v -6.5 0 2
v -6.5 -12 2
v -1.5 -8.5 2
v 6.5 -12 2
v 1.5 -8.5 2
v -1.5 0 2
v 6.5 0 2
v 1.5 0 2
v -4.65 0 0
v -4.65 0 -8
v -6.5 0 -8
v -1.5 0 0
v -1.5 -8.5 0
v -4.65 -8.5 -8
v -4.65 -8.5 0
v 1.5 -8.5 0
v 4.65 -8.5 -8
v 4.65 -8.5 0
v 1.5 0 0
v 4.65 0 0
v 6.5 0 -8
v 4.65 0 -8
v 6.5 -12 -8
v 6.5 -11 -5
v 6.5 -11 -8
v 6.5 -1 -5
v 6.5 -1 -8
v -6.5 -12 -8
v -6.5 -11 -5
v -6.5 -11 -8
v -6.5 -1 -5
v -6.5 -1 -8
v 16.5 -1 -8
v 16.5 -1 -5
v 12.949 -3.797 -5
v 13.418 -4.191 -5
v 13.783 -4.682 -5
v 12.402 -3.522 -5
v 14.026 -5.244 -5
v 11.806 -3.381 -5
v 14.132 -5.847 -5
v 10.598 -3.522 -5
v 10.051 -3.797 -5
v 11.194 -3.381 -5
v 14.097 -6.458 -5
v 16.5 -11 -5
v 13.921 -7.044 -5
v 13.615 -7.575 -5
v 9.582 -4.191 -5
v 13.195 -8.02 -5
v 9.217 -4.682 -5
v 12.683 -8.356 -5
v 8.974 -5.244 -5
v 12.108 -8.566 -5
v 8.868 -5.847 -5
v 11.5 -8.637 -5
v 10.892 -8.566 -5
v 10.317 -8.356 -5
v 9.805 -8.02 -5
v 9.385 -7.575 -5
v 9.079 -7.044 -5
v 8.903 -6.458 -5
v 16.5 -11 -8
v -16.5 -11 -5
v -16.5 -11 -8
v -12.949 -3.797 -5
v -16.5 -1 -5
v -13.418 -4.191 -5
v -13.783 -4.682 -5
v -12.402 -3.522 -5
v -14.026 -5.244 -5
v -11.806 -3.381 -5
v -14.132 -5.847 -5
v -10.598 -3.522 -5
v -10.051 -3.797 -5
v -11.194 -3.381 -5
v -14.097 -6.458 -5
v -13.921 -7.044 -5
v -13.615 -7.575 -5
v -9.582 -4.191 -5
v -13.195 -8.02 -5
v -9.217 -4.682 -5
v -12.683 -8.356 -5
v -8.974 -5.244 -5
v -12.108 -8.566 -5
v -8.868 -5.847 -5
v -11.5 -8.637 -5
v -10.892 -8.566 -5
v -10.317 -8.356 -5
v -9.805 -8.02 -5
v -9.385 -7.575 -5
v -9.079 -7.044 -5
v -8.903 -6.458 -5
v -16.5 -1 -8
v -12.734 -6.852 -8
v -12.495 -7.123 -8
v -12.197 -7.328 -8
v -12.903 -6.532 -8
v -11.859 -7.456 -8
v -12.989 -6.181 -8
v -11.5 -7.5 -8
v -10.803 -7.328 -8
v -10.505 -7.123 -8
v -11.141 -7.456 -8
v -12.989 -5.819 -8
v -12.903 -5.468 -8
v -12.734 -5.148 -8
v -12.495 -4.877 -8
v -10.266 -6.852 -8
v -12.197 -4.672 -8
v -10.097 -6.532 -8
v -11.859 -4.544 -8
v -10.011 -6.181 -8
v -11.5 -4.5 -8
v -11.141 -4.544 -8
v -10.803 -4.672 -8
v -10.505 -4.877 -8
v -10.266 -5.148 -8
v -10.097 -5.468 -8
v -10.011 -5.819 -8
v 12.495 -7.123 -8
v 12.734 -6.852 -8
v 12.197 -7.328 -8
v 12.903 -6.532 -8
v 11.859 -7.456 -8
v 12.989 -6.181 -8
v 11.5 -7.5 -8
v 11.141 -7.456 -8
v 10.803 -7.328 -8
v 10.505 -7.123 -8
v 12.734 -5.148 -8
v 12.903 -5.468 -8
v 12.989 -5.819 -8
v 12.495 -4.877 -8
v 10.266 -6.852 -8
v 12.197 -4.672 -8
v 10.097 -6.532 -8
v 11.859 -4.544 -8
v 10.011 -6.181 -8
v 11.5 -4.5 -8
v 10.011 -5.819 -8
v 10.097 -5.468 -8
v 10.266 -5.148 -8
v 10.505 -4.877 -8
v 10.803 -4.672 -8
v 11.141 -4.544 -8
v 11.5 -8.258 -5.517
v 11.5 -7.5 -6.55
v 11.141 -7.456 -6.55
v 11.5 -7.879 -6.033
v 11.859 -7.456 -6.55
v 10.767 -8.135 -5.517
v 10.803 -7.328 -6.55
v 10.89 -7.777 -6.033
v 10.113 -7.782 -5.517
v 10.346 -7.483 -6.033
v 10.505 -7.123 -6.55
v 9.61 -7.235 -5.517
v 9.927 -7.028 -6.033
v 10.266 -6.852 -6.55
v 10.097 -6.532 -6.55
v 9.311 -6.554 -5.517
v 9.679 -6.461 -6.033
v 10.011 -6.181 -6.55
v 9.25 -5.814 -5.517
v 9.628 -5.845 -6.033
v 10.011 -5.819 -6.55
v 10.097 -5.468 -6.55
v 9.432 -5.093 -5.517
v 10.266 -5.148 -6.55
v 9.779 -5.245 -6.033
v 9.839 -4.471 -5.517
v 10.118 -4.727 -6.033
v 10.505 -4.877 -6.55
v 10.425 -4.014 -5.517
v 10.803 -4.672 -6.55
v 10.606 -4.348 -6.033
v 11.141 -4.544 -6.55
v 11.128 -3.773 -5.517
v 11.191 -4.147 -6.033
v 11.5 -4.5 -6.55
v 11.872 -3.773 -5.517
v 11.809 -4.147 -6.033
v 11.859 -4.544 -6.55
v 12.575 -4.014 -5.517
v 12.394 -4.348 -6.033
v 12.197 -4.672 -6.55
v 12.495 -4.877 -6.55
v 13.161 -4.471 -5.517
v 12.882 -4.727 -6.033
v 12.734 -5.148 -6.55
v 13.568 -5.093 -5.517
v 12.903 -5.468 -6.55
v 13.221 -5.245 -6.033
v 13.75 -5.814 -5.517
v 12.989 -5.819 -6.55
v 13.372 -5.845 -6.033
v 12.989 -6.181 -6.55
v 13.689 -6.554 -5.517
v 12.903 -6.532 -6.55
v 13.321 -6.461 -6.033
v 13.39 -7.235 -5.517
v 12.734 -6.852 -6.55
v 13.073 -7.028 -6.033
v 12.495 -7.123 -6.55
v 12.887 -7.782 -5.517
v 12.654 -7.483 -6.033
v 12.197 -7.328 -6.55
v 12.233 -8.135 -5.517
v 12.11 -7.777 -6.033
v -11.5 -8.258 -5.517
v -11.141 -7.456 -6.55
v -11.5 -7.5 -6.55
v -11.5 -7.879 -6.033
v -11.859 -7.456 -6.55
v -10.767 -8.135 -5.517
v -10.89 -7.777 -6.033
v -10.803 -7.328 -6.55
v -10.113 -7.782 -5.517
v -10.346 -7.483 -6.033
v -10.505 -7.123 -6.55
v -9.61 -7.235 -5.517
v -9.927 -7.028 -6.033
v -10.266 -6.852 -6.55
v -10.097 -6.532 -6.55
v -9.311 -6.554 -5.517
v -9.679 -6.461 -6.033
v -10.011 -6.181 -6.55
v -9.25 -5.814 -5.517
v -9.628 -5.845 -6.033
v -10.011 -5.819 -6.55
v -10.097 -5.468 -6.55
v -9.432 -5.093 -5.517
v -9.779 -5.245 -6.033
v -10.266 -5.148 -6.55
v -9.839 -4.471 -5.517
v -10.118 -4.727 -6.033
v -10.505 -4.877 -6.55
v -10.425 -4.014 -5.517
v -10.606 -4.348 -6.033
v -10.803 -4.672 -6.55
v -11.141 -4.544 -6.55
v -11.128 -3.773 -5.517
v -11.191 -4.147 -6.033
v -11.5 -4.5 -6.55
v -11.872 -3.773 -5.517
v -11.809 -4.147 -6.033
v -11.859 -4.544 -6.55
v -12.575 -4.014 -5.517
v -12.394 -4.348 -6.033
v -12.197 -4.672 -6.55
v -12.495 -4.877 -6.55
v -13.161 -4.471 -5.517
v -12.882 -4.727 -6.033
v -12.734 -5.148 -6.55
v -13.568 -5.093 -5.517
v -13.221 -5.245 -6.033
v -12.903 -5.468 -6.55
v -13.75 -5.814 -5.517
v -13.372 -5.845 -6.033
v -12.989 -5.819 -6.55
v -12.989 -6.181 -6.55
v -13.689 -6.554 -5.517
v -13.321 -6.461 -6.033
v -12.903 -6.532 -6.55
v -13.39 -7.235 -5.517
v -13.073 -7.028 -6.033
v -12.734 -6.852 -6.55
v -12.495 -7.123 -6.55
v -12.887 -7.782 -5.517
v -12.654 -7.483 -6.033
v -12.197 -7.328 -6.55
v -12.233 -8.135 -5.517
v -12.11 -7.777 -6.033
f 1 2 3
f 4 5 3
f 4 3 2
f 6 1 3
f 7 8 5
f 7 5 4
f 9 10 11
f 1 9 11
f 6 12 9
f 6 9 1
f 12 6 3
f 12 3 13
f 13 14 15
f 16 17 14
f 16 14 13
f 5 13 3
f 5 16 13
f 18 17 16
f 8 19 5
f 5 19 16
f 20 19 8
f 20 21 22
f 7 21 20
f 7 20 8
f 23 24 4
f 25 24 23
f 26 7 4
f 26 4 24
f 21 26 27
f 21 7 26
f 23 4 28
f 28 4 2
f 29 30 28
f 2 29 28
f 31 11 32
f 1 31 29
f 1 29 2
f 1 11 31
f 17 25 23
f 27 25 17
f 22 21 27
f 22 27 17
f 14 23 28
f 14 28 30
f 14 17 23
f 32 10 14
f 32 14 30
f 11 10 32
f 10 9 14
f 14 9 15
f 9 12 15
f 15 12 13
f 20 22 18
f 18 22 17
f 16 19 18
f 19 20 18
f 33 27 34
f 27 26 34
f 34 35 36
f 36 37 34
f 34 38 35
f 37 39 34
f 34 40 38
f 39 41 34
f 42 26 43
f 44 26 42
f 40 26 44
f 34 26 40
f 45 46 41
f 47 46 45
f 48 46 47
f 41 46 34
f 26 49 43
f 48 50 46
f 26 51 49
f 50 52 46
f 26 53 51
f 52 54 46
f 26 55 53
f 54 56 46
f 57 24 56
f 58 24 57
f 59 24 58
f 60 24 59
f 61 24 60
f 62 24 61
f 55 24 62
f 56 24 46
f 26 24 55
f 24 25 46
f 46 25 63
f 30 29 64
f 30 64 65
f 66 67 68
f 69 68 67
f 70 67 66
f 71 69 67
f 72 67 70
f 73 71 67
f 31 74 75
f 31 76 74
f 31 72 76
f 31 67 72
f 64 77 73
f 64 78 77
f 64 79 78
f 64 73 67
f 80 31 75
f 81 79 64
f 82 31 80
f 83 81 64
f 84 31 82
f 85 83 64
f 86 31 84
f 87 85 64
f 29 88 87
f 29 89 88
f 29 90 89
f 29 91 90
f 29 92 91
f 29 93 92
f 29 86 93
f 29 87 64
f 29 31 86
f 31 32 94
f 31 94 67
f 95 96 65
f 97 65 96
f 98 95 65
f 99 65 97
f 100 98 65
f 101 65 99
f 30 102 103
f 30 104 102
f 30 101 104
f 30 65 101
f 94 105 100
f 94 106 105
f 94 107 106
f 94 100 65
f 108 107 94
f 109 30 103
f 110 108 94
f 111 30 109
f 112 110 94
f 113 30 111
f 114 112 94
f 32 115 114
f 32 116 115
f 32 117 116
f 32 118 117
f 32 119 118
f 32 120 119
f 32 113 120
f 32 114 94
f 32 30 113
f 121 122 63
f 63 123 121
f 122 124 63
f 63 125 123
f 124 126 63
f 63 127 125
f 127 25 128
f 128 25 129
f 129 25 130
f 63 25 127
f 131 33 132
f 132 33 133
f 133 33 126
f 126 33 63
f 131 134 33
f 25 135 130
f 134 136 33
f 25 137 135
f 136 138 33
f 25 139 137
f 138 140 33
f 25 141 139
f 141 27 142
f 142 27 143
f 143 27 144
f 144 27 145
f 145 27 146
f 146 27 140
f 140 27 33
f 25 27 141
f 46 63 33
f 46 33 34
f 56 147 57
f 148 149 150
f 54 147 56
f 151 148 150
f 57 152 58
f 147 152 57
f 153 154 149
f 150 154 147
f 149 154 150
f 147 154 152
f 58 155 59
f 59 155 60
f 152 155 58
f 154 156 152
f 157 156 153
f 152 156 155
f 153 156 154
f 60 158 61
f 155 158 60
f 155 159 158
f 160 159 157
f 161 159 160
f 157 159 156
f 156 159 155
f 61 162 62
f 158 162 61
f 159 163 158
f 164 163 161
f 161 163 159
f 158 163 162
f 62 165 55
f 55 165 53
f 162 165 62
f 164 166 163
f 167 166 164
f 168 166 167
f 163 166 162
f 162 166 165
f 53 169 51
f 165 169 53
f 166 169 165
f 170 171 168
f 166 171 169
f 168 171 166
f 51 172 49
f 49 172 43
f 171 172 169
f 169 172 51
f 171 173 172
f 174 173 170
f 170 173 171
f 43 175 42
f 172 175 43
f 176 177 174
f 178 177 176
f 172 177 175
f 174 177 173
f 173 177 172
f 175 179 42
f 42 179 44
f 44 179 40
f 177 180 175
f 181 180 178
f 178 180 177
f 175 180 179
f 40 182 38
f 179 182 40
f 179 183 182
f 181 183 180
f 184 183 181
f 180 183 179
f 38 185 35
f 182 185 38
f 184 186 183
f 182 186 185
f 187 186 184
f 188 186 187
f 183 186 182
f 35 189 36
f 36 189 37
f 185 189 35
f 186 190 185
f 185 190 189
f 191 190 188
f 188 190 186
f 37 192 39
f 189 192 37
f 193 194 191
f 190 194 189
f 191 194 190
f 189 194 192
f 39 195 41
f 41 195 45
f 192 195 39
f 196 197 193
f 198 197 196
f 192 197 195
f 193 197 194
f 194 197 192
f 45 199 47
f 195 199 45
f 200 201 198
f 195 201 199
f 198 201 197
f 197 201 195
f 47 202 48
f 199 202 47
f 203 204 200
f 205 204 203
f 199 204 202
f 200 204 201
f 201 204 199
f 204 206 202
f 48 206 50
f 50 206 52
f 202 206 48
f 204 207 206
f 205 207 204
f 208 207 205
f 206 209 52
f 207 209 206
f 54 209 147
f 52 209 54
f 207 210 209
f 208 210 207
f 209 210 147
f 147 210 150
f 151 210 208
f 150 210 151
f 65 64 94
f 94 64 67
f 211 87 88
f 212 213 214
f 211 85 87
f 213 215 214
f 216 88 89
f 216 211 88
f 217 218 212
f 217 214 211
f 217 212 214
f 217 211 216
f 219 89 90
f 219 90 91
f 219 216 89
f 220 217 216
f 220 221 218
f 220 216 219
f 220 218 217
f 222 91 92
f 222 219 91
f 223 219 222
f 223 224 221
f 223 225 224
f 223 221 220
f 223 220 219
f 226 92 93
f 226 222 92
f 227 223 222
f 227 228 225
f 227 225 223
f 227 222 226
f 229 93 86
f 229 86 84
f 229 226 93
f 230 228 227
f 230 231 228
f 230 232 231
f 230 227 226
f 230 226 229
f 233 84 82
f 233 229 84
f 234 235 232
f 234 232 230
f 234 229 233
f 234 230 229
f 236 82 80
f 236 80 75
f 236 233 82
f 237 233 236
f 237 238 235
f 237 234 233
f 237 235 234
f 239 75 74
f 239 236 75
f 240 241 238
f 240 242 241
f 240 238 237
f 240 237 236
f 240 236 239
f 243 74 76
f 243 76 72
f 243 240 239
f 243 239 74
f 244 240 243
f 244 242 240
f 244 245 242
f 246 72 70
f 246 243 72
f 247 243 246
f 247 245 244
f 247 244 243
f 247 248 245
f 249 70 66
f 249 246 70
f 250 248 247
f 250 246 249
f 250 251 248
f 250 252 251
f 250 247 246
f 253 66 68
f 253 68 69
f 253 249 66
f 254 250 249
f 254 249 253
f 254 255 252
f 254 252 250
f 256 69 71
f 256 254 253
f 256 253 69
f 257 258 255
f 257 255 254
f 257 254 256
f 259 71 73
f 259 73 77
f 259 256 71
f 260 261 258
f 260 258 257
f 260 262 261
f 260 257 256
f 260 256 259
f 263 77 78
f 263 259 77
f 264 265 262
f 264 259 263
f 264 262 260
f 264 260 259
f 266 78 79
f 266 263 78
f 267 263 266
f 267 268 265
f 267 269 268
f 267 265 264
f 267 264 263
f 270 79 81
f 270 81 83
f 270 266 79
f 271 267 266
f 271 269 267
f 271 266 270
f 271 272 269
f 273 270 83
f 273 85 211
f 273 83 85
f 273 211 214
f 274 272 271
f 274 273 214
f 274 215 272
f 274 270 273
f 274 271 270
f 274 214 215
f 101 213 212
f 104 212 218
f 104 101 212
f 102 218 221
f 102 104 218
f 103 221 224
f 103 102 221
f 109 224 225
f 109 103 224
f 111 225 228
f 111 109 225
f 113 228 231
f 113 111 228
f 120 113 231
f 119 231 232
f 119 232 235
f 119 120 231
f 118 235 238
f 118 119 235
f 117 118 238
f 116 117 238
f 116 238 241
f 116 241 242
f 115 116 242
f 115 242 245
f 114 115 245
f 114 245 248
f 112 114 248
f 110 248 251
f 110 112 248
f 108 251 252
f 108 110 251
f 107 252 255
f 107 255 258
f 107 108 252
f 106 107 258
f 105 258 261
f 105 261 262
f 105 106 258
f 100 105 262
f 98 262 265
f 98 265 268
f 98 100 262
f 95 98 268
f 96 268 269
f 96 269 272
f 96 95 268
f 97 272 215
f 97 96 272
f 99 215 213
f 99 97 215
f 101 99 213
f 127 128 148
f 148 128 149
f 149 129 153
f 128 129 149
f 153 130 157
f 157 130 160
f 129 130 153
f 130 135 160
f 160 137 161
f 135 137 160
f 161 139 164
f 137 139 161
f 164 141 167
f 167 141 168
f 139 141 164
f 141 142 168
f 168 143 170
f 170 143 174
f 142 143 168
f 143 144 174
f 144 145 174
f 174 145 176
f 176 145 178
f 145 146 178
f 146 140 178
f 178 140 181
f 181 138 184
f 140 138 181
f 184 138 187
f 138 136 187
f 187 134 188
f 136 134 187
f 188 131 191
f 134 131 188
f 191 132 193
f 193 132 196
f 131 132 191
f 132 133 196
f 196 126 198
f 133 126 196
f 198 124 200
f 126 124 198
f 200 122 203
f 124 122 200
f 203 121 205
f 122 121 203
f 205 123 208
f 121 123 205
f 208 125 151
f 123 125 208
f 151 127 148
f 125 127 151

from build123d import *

# Parameters (mm, degrees)
SKETCH_W     = 13
SKETCH_H     = 10
PAD_DEPTH    = 12
POCKET_DEPTH = 8.5
SKETCH002_W  = 3
SKETCH002_H  = 10
PAD001_DEPTH = 10


with BuildPart() as part:
    # Sketch → Pad (new body)
    with BuildSketch(Plane.XZ):
        with Locations((0, -3)):
            Rectangle(SKETCH_W, SKETCH_H)
    extrude(amount=PAD_DEPTH)

    # Sketch001 → Pocket (cut)
    with BuildSketch(Plane(origin=(0, 0, 0), x_dir=(-1, 0, 0), z_dir=(0, 1, 0))):
        Polygon((-1.5, 5.906373), (1.5, 5.906373), (1.5, 0), (4.65, 0), (4.65, -8.83584), (-4.65, -8.83584), (-4.65, 0), (-1.5, 0), align=None)
    extrude(amount=-POCKET_DEPTH, mode=Mode.SUBTRACT)

    # Sketch002 (on Face7 of Pocket) → Pad001 (join)
    with BuildSketch(Plane(origin=(6.5, 0, 0), x_dir=(0, 0, 1), z_dir=(1, 0, 0))):
        with Locations((-6.5, 6)):
            Rectangle(SKETCH002_W, SKETCH002_H)
    pad001 = extrude(amount=PAD001_DEPTH)

    # Sketch003 (on DatumPlane) → Groove (revolve, cut)
    with BuildSketch(Plane.YZ.offset(11.5)):
        Polygon((-6, -5), (-8.636665, -5), (-7.5, -6.55), (-7.5, -10.559105), (-6, -10.559105), align=None)
    groove = revolve(axis=Axis((11.5, -6, -3.810725), (0, 0, -1)), mode=Mode.SUBTRACT)

    # Mirrored: Pad001, Groove across YZ
    add(pad001.mirror(Plane.YZ))
    add(groove.mirror(Plane.YZ), mode=Mode.SUBTRACT)


solid = part.part
